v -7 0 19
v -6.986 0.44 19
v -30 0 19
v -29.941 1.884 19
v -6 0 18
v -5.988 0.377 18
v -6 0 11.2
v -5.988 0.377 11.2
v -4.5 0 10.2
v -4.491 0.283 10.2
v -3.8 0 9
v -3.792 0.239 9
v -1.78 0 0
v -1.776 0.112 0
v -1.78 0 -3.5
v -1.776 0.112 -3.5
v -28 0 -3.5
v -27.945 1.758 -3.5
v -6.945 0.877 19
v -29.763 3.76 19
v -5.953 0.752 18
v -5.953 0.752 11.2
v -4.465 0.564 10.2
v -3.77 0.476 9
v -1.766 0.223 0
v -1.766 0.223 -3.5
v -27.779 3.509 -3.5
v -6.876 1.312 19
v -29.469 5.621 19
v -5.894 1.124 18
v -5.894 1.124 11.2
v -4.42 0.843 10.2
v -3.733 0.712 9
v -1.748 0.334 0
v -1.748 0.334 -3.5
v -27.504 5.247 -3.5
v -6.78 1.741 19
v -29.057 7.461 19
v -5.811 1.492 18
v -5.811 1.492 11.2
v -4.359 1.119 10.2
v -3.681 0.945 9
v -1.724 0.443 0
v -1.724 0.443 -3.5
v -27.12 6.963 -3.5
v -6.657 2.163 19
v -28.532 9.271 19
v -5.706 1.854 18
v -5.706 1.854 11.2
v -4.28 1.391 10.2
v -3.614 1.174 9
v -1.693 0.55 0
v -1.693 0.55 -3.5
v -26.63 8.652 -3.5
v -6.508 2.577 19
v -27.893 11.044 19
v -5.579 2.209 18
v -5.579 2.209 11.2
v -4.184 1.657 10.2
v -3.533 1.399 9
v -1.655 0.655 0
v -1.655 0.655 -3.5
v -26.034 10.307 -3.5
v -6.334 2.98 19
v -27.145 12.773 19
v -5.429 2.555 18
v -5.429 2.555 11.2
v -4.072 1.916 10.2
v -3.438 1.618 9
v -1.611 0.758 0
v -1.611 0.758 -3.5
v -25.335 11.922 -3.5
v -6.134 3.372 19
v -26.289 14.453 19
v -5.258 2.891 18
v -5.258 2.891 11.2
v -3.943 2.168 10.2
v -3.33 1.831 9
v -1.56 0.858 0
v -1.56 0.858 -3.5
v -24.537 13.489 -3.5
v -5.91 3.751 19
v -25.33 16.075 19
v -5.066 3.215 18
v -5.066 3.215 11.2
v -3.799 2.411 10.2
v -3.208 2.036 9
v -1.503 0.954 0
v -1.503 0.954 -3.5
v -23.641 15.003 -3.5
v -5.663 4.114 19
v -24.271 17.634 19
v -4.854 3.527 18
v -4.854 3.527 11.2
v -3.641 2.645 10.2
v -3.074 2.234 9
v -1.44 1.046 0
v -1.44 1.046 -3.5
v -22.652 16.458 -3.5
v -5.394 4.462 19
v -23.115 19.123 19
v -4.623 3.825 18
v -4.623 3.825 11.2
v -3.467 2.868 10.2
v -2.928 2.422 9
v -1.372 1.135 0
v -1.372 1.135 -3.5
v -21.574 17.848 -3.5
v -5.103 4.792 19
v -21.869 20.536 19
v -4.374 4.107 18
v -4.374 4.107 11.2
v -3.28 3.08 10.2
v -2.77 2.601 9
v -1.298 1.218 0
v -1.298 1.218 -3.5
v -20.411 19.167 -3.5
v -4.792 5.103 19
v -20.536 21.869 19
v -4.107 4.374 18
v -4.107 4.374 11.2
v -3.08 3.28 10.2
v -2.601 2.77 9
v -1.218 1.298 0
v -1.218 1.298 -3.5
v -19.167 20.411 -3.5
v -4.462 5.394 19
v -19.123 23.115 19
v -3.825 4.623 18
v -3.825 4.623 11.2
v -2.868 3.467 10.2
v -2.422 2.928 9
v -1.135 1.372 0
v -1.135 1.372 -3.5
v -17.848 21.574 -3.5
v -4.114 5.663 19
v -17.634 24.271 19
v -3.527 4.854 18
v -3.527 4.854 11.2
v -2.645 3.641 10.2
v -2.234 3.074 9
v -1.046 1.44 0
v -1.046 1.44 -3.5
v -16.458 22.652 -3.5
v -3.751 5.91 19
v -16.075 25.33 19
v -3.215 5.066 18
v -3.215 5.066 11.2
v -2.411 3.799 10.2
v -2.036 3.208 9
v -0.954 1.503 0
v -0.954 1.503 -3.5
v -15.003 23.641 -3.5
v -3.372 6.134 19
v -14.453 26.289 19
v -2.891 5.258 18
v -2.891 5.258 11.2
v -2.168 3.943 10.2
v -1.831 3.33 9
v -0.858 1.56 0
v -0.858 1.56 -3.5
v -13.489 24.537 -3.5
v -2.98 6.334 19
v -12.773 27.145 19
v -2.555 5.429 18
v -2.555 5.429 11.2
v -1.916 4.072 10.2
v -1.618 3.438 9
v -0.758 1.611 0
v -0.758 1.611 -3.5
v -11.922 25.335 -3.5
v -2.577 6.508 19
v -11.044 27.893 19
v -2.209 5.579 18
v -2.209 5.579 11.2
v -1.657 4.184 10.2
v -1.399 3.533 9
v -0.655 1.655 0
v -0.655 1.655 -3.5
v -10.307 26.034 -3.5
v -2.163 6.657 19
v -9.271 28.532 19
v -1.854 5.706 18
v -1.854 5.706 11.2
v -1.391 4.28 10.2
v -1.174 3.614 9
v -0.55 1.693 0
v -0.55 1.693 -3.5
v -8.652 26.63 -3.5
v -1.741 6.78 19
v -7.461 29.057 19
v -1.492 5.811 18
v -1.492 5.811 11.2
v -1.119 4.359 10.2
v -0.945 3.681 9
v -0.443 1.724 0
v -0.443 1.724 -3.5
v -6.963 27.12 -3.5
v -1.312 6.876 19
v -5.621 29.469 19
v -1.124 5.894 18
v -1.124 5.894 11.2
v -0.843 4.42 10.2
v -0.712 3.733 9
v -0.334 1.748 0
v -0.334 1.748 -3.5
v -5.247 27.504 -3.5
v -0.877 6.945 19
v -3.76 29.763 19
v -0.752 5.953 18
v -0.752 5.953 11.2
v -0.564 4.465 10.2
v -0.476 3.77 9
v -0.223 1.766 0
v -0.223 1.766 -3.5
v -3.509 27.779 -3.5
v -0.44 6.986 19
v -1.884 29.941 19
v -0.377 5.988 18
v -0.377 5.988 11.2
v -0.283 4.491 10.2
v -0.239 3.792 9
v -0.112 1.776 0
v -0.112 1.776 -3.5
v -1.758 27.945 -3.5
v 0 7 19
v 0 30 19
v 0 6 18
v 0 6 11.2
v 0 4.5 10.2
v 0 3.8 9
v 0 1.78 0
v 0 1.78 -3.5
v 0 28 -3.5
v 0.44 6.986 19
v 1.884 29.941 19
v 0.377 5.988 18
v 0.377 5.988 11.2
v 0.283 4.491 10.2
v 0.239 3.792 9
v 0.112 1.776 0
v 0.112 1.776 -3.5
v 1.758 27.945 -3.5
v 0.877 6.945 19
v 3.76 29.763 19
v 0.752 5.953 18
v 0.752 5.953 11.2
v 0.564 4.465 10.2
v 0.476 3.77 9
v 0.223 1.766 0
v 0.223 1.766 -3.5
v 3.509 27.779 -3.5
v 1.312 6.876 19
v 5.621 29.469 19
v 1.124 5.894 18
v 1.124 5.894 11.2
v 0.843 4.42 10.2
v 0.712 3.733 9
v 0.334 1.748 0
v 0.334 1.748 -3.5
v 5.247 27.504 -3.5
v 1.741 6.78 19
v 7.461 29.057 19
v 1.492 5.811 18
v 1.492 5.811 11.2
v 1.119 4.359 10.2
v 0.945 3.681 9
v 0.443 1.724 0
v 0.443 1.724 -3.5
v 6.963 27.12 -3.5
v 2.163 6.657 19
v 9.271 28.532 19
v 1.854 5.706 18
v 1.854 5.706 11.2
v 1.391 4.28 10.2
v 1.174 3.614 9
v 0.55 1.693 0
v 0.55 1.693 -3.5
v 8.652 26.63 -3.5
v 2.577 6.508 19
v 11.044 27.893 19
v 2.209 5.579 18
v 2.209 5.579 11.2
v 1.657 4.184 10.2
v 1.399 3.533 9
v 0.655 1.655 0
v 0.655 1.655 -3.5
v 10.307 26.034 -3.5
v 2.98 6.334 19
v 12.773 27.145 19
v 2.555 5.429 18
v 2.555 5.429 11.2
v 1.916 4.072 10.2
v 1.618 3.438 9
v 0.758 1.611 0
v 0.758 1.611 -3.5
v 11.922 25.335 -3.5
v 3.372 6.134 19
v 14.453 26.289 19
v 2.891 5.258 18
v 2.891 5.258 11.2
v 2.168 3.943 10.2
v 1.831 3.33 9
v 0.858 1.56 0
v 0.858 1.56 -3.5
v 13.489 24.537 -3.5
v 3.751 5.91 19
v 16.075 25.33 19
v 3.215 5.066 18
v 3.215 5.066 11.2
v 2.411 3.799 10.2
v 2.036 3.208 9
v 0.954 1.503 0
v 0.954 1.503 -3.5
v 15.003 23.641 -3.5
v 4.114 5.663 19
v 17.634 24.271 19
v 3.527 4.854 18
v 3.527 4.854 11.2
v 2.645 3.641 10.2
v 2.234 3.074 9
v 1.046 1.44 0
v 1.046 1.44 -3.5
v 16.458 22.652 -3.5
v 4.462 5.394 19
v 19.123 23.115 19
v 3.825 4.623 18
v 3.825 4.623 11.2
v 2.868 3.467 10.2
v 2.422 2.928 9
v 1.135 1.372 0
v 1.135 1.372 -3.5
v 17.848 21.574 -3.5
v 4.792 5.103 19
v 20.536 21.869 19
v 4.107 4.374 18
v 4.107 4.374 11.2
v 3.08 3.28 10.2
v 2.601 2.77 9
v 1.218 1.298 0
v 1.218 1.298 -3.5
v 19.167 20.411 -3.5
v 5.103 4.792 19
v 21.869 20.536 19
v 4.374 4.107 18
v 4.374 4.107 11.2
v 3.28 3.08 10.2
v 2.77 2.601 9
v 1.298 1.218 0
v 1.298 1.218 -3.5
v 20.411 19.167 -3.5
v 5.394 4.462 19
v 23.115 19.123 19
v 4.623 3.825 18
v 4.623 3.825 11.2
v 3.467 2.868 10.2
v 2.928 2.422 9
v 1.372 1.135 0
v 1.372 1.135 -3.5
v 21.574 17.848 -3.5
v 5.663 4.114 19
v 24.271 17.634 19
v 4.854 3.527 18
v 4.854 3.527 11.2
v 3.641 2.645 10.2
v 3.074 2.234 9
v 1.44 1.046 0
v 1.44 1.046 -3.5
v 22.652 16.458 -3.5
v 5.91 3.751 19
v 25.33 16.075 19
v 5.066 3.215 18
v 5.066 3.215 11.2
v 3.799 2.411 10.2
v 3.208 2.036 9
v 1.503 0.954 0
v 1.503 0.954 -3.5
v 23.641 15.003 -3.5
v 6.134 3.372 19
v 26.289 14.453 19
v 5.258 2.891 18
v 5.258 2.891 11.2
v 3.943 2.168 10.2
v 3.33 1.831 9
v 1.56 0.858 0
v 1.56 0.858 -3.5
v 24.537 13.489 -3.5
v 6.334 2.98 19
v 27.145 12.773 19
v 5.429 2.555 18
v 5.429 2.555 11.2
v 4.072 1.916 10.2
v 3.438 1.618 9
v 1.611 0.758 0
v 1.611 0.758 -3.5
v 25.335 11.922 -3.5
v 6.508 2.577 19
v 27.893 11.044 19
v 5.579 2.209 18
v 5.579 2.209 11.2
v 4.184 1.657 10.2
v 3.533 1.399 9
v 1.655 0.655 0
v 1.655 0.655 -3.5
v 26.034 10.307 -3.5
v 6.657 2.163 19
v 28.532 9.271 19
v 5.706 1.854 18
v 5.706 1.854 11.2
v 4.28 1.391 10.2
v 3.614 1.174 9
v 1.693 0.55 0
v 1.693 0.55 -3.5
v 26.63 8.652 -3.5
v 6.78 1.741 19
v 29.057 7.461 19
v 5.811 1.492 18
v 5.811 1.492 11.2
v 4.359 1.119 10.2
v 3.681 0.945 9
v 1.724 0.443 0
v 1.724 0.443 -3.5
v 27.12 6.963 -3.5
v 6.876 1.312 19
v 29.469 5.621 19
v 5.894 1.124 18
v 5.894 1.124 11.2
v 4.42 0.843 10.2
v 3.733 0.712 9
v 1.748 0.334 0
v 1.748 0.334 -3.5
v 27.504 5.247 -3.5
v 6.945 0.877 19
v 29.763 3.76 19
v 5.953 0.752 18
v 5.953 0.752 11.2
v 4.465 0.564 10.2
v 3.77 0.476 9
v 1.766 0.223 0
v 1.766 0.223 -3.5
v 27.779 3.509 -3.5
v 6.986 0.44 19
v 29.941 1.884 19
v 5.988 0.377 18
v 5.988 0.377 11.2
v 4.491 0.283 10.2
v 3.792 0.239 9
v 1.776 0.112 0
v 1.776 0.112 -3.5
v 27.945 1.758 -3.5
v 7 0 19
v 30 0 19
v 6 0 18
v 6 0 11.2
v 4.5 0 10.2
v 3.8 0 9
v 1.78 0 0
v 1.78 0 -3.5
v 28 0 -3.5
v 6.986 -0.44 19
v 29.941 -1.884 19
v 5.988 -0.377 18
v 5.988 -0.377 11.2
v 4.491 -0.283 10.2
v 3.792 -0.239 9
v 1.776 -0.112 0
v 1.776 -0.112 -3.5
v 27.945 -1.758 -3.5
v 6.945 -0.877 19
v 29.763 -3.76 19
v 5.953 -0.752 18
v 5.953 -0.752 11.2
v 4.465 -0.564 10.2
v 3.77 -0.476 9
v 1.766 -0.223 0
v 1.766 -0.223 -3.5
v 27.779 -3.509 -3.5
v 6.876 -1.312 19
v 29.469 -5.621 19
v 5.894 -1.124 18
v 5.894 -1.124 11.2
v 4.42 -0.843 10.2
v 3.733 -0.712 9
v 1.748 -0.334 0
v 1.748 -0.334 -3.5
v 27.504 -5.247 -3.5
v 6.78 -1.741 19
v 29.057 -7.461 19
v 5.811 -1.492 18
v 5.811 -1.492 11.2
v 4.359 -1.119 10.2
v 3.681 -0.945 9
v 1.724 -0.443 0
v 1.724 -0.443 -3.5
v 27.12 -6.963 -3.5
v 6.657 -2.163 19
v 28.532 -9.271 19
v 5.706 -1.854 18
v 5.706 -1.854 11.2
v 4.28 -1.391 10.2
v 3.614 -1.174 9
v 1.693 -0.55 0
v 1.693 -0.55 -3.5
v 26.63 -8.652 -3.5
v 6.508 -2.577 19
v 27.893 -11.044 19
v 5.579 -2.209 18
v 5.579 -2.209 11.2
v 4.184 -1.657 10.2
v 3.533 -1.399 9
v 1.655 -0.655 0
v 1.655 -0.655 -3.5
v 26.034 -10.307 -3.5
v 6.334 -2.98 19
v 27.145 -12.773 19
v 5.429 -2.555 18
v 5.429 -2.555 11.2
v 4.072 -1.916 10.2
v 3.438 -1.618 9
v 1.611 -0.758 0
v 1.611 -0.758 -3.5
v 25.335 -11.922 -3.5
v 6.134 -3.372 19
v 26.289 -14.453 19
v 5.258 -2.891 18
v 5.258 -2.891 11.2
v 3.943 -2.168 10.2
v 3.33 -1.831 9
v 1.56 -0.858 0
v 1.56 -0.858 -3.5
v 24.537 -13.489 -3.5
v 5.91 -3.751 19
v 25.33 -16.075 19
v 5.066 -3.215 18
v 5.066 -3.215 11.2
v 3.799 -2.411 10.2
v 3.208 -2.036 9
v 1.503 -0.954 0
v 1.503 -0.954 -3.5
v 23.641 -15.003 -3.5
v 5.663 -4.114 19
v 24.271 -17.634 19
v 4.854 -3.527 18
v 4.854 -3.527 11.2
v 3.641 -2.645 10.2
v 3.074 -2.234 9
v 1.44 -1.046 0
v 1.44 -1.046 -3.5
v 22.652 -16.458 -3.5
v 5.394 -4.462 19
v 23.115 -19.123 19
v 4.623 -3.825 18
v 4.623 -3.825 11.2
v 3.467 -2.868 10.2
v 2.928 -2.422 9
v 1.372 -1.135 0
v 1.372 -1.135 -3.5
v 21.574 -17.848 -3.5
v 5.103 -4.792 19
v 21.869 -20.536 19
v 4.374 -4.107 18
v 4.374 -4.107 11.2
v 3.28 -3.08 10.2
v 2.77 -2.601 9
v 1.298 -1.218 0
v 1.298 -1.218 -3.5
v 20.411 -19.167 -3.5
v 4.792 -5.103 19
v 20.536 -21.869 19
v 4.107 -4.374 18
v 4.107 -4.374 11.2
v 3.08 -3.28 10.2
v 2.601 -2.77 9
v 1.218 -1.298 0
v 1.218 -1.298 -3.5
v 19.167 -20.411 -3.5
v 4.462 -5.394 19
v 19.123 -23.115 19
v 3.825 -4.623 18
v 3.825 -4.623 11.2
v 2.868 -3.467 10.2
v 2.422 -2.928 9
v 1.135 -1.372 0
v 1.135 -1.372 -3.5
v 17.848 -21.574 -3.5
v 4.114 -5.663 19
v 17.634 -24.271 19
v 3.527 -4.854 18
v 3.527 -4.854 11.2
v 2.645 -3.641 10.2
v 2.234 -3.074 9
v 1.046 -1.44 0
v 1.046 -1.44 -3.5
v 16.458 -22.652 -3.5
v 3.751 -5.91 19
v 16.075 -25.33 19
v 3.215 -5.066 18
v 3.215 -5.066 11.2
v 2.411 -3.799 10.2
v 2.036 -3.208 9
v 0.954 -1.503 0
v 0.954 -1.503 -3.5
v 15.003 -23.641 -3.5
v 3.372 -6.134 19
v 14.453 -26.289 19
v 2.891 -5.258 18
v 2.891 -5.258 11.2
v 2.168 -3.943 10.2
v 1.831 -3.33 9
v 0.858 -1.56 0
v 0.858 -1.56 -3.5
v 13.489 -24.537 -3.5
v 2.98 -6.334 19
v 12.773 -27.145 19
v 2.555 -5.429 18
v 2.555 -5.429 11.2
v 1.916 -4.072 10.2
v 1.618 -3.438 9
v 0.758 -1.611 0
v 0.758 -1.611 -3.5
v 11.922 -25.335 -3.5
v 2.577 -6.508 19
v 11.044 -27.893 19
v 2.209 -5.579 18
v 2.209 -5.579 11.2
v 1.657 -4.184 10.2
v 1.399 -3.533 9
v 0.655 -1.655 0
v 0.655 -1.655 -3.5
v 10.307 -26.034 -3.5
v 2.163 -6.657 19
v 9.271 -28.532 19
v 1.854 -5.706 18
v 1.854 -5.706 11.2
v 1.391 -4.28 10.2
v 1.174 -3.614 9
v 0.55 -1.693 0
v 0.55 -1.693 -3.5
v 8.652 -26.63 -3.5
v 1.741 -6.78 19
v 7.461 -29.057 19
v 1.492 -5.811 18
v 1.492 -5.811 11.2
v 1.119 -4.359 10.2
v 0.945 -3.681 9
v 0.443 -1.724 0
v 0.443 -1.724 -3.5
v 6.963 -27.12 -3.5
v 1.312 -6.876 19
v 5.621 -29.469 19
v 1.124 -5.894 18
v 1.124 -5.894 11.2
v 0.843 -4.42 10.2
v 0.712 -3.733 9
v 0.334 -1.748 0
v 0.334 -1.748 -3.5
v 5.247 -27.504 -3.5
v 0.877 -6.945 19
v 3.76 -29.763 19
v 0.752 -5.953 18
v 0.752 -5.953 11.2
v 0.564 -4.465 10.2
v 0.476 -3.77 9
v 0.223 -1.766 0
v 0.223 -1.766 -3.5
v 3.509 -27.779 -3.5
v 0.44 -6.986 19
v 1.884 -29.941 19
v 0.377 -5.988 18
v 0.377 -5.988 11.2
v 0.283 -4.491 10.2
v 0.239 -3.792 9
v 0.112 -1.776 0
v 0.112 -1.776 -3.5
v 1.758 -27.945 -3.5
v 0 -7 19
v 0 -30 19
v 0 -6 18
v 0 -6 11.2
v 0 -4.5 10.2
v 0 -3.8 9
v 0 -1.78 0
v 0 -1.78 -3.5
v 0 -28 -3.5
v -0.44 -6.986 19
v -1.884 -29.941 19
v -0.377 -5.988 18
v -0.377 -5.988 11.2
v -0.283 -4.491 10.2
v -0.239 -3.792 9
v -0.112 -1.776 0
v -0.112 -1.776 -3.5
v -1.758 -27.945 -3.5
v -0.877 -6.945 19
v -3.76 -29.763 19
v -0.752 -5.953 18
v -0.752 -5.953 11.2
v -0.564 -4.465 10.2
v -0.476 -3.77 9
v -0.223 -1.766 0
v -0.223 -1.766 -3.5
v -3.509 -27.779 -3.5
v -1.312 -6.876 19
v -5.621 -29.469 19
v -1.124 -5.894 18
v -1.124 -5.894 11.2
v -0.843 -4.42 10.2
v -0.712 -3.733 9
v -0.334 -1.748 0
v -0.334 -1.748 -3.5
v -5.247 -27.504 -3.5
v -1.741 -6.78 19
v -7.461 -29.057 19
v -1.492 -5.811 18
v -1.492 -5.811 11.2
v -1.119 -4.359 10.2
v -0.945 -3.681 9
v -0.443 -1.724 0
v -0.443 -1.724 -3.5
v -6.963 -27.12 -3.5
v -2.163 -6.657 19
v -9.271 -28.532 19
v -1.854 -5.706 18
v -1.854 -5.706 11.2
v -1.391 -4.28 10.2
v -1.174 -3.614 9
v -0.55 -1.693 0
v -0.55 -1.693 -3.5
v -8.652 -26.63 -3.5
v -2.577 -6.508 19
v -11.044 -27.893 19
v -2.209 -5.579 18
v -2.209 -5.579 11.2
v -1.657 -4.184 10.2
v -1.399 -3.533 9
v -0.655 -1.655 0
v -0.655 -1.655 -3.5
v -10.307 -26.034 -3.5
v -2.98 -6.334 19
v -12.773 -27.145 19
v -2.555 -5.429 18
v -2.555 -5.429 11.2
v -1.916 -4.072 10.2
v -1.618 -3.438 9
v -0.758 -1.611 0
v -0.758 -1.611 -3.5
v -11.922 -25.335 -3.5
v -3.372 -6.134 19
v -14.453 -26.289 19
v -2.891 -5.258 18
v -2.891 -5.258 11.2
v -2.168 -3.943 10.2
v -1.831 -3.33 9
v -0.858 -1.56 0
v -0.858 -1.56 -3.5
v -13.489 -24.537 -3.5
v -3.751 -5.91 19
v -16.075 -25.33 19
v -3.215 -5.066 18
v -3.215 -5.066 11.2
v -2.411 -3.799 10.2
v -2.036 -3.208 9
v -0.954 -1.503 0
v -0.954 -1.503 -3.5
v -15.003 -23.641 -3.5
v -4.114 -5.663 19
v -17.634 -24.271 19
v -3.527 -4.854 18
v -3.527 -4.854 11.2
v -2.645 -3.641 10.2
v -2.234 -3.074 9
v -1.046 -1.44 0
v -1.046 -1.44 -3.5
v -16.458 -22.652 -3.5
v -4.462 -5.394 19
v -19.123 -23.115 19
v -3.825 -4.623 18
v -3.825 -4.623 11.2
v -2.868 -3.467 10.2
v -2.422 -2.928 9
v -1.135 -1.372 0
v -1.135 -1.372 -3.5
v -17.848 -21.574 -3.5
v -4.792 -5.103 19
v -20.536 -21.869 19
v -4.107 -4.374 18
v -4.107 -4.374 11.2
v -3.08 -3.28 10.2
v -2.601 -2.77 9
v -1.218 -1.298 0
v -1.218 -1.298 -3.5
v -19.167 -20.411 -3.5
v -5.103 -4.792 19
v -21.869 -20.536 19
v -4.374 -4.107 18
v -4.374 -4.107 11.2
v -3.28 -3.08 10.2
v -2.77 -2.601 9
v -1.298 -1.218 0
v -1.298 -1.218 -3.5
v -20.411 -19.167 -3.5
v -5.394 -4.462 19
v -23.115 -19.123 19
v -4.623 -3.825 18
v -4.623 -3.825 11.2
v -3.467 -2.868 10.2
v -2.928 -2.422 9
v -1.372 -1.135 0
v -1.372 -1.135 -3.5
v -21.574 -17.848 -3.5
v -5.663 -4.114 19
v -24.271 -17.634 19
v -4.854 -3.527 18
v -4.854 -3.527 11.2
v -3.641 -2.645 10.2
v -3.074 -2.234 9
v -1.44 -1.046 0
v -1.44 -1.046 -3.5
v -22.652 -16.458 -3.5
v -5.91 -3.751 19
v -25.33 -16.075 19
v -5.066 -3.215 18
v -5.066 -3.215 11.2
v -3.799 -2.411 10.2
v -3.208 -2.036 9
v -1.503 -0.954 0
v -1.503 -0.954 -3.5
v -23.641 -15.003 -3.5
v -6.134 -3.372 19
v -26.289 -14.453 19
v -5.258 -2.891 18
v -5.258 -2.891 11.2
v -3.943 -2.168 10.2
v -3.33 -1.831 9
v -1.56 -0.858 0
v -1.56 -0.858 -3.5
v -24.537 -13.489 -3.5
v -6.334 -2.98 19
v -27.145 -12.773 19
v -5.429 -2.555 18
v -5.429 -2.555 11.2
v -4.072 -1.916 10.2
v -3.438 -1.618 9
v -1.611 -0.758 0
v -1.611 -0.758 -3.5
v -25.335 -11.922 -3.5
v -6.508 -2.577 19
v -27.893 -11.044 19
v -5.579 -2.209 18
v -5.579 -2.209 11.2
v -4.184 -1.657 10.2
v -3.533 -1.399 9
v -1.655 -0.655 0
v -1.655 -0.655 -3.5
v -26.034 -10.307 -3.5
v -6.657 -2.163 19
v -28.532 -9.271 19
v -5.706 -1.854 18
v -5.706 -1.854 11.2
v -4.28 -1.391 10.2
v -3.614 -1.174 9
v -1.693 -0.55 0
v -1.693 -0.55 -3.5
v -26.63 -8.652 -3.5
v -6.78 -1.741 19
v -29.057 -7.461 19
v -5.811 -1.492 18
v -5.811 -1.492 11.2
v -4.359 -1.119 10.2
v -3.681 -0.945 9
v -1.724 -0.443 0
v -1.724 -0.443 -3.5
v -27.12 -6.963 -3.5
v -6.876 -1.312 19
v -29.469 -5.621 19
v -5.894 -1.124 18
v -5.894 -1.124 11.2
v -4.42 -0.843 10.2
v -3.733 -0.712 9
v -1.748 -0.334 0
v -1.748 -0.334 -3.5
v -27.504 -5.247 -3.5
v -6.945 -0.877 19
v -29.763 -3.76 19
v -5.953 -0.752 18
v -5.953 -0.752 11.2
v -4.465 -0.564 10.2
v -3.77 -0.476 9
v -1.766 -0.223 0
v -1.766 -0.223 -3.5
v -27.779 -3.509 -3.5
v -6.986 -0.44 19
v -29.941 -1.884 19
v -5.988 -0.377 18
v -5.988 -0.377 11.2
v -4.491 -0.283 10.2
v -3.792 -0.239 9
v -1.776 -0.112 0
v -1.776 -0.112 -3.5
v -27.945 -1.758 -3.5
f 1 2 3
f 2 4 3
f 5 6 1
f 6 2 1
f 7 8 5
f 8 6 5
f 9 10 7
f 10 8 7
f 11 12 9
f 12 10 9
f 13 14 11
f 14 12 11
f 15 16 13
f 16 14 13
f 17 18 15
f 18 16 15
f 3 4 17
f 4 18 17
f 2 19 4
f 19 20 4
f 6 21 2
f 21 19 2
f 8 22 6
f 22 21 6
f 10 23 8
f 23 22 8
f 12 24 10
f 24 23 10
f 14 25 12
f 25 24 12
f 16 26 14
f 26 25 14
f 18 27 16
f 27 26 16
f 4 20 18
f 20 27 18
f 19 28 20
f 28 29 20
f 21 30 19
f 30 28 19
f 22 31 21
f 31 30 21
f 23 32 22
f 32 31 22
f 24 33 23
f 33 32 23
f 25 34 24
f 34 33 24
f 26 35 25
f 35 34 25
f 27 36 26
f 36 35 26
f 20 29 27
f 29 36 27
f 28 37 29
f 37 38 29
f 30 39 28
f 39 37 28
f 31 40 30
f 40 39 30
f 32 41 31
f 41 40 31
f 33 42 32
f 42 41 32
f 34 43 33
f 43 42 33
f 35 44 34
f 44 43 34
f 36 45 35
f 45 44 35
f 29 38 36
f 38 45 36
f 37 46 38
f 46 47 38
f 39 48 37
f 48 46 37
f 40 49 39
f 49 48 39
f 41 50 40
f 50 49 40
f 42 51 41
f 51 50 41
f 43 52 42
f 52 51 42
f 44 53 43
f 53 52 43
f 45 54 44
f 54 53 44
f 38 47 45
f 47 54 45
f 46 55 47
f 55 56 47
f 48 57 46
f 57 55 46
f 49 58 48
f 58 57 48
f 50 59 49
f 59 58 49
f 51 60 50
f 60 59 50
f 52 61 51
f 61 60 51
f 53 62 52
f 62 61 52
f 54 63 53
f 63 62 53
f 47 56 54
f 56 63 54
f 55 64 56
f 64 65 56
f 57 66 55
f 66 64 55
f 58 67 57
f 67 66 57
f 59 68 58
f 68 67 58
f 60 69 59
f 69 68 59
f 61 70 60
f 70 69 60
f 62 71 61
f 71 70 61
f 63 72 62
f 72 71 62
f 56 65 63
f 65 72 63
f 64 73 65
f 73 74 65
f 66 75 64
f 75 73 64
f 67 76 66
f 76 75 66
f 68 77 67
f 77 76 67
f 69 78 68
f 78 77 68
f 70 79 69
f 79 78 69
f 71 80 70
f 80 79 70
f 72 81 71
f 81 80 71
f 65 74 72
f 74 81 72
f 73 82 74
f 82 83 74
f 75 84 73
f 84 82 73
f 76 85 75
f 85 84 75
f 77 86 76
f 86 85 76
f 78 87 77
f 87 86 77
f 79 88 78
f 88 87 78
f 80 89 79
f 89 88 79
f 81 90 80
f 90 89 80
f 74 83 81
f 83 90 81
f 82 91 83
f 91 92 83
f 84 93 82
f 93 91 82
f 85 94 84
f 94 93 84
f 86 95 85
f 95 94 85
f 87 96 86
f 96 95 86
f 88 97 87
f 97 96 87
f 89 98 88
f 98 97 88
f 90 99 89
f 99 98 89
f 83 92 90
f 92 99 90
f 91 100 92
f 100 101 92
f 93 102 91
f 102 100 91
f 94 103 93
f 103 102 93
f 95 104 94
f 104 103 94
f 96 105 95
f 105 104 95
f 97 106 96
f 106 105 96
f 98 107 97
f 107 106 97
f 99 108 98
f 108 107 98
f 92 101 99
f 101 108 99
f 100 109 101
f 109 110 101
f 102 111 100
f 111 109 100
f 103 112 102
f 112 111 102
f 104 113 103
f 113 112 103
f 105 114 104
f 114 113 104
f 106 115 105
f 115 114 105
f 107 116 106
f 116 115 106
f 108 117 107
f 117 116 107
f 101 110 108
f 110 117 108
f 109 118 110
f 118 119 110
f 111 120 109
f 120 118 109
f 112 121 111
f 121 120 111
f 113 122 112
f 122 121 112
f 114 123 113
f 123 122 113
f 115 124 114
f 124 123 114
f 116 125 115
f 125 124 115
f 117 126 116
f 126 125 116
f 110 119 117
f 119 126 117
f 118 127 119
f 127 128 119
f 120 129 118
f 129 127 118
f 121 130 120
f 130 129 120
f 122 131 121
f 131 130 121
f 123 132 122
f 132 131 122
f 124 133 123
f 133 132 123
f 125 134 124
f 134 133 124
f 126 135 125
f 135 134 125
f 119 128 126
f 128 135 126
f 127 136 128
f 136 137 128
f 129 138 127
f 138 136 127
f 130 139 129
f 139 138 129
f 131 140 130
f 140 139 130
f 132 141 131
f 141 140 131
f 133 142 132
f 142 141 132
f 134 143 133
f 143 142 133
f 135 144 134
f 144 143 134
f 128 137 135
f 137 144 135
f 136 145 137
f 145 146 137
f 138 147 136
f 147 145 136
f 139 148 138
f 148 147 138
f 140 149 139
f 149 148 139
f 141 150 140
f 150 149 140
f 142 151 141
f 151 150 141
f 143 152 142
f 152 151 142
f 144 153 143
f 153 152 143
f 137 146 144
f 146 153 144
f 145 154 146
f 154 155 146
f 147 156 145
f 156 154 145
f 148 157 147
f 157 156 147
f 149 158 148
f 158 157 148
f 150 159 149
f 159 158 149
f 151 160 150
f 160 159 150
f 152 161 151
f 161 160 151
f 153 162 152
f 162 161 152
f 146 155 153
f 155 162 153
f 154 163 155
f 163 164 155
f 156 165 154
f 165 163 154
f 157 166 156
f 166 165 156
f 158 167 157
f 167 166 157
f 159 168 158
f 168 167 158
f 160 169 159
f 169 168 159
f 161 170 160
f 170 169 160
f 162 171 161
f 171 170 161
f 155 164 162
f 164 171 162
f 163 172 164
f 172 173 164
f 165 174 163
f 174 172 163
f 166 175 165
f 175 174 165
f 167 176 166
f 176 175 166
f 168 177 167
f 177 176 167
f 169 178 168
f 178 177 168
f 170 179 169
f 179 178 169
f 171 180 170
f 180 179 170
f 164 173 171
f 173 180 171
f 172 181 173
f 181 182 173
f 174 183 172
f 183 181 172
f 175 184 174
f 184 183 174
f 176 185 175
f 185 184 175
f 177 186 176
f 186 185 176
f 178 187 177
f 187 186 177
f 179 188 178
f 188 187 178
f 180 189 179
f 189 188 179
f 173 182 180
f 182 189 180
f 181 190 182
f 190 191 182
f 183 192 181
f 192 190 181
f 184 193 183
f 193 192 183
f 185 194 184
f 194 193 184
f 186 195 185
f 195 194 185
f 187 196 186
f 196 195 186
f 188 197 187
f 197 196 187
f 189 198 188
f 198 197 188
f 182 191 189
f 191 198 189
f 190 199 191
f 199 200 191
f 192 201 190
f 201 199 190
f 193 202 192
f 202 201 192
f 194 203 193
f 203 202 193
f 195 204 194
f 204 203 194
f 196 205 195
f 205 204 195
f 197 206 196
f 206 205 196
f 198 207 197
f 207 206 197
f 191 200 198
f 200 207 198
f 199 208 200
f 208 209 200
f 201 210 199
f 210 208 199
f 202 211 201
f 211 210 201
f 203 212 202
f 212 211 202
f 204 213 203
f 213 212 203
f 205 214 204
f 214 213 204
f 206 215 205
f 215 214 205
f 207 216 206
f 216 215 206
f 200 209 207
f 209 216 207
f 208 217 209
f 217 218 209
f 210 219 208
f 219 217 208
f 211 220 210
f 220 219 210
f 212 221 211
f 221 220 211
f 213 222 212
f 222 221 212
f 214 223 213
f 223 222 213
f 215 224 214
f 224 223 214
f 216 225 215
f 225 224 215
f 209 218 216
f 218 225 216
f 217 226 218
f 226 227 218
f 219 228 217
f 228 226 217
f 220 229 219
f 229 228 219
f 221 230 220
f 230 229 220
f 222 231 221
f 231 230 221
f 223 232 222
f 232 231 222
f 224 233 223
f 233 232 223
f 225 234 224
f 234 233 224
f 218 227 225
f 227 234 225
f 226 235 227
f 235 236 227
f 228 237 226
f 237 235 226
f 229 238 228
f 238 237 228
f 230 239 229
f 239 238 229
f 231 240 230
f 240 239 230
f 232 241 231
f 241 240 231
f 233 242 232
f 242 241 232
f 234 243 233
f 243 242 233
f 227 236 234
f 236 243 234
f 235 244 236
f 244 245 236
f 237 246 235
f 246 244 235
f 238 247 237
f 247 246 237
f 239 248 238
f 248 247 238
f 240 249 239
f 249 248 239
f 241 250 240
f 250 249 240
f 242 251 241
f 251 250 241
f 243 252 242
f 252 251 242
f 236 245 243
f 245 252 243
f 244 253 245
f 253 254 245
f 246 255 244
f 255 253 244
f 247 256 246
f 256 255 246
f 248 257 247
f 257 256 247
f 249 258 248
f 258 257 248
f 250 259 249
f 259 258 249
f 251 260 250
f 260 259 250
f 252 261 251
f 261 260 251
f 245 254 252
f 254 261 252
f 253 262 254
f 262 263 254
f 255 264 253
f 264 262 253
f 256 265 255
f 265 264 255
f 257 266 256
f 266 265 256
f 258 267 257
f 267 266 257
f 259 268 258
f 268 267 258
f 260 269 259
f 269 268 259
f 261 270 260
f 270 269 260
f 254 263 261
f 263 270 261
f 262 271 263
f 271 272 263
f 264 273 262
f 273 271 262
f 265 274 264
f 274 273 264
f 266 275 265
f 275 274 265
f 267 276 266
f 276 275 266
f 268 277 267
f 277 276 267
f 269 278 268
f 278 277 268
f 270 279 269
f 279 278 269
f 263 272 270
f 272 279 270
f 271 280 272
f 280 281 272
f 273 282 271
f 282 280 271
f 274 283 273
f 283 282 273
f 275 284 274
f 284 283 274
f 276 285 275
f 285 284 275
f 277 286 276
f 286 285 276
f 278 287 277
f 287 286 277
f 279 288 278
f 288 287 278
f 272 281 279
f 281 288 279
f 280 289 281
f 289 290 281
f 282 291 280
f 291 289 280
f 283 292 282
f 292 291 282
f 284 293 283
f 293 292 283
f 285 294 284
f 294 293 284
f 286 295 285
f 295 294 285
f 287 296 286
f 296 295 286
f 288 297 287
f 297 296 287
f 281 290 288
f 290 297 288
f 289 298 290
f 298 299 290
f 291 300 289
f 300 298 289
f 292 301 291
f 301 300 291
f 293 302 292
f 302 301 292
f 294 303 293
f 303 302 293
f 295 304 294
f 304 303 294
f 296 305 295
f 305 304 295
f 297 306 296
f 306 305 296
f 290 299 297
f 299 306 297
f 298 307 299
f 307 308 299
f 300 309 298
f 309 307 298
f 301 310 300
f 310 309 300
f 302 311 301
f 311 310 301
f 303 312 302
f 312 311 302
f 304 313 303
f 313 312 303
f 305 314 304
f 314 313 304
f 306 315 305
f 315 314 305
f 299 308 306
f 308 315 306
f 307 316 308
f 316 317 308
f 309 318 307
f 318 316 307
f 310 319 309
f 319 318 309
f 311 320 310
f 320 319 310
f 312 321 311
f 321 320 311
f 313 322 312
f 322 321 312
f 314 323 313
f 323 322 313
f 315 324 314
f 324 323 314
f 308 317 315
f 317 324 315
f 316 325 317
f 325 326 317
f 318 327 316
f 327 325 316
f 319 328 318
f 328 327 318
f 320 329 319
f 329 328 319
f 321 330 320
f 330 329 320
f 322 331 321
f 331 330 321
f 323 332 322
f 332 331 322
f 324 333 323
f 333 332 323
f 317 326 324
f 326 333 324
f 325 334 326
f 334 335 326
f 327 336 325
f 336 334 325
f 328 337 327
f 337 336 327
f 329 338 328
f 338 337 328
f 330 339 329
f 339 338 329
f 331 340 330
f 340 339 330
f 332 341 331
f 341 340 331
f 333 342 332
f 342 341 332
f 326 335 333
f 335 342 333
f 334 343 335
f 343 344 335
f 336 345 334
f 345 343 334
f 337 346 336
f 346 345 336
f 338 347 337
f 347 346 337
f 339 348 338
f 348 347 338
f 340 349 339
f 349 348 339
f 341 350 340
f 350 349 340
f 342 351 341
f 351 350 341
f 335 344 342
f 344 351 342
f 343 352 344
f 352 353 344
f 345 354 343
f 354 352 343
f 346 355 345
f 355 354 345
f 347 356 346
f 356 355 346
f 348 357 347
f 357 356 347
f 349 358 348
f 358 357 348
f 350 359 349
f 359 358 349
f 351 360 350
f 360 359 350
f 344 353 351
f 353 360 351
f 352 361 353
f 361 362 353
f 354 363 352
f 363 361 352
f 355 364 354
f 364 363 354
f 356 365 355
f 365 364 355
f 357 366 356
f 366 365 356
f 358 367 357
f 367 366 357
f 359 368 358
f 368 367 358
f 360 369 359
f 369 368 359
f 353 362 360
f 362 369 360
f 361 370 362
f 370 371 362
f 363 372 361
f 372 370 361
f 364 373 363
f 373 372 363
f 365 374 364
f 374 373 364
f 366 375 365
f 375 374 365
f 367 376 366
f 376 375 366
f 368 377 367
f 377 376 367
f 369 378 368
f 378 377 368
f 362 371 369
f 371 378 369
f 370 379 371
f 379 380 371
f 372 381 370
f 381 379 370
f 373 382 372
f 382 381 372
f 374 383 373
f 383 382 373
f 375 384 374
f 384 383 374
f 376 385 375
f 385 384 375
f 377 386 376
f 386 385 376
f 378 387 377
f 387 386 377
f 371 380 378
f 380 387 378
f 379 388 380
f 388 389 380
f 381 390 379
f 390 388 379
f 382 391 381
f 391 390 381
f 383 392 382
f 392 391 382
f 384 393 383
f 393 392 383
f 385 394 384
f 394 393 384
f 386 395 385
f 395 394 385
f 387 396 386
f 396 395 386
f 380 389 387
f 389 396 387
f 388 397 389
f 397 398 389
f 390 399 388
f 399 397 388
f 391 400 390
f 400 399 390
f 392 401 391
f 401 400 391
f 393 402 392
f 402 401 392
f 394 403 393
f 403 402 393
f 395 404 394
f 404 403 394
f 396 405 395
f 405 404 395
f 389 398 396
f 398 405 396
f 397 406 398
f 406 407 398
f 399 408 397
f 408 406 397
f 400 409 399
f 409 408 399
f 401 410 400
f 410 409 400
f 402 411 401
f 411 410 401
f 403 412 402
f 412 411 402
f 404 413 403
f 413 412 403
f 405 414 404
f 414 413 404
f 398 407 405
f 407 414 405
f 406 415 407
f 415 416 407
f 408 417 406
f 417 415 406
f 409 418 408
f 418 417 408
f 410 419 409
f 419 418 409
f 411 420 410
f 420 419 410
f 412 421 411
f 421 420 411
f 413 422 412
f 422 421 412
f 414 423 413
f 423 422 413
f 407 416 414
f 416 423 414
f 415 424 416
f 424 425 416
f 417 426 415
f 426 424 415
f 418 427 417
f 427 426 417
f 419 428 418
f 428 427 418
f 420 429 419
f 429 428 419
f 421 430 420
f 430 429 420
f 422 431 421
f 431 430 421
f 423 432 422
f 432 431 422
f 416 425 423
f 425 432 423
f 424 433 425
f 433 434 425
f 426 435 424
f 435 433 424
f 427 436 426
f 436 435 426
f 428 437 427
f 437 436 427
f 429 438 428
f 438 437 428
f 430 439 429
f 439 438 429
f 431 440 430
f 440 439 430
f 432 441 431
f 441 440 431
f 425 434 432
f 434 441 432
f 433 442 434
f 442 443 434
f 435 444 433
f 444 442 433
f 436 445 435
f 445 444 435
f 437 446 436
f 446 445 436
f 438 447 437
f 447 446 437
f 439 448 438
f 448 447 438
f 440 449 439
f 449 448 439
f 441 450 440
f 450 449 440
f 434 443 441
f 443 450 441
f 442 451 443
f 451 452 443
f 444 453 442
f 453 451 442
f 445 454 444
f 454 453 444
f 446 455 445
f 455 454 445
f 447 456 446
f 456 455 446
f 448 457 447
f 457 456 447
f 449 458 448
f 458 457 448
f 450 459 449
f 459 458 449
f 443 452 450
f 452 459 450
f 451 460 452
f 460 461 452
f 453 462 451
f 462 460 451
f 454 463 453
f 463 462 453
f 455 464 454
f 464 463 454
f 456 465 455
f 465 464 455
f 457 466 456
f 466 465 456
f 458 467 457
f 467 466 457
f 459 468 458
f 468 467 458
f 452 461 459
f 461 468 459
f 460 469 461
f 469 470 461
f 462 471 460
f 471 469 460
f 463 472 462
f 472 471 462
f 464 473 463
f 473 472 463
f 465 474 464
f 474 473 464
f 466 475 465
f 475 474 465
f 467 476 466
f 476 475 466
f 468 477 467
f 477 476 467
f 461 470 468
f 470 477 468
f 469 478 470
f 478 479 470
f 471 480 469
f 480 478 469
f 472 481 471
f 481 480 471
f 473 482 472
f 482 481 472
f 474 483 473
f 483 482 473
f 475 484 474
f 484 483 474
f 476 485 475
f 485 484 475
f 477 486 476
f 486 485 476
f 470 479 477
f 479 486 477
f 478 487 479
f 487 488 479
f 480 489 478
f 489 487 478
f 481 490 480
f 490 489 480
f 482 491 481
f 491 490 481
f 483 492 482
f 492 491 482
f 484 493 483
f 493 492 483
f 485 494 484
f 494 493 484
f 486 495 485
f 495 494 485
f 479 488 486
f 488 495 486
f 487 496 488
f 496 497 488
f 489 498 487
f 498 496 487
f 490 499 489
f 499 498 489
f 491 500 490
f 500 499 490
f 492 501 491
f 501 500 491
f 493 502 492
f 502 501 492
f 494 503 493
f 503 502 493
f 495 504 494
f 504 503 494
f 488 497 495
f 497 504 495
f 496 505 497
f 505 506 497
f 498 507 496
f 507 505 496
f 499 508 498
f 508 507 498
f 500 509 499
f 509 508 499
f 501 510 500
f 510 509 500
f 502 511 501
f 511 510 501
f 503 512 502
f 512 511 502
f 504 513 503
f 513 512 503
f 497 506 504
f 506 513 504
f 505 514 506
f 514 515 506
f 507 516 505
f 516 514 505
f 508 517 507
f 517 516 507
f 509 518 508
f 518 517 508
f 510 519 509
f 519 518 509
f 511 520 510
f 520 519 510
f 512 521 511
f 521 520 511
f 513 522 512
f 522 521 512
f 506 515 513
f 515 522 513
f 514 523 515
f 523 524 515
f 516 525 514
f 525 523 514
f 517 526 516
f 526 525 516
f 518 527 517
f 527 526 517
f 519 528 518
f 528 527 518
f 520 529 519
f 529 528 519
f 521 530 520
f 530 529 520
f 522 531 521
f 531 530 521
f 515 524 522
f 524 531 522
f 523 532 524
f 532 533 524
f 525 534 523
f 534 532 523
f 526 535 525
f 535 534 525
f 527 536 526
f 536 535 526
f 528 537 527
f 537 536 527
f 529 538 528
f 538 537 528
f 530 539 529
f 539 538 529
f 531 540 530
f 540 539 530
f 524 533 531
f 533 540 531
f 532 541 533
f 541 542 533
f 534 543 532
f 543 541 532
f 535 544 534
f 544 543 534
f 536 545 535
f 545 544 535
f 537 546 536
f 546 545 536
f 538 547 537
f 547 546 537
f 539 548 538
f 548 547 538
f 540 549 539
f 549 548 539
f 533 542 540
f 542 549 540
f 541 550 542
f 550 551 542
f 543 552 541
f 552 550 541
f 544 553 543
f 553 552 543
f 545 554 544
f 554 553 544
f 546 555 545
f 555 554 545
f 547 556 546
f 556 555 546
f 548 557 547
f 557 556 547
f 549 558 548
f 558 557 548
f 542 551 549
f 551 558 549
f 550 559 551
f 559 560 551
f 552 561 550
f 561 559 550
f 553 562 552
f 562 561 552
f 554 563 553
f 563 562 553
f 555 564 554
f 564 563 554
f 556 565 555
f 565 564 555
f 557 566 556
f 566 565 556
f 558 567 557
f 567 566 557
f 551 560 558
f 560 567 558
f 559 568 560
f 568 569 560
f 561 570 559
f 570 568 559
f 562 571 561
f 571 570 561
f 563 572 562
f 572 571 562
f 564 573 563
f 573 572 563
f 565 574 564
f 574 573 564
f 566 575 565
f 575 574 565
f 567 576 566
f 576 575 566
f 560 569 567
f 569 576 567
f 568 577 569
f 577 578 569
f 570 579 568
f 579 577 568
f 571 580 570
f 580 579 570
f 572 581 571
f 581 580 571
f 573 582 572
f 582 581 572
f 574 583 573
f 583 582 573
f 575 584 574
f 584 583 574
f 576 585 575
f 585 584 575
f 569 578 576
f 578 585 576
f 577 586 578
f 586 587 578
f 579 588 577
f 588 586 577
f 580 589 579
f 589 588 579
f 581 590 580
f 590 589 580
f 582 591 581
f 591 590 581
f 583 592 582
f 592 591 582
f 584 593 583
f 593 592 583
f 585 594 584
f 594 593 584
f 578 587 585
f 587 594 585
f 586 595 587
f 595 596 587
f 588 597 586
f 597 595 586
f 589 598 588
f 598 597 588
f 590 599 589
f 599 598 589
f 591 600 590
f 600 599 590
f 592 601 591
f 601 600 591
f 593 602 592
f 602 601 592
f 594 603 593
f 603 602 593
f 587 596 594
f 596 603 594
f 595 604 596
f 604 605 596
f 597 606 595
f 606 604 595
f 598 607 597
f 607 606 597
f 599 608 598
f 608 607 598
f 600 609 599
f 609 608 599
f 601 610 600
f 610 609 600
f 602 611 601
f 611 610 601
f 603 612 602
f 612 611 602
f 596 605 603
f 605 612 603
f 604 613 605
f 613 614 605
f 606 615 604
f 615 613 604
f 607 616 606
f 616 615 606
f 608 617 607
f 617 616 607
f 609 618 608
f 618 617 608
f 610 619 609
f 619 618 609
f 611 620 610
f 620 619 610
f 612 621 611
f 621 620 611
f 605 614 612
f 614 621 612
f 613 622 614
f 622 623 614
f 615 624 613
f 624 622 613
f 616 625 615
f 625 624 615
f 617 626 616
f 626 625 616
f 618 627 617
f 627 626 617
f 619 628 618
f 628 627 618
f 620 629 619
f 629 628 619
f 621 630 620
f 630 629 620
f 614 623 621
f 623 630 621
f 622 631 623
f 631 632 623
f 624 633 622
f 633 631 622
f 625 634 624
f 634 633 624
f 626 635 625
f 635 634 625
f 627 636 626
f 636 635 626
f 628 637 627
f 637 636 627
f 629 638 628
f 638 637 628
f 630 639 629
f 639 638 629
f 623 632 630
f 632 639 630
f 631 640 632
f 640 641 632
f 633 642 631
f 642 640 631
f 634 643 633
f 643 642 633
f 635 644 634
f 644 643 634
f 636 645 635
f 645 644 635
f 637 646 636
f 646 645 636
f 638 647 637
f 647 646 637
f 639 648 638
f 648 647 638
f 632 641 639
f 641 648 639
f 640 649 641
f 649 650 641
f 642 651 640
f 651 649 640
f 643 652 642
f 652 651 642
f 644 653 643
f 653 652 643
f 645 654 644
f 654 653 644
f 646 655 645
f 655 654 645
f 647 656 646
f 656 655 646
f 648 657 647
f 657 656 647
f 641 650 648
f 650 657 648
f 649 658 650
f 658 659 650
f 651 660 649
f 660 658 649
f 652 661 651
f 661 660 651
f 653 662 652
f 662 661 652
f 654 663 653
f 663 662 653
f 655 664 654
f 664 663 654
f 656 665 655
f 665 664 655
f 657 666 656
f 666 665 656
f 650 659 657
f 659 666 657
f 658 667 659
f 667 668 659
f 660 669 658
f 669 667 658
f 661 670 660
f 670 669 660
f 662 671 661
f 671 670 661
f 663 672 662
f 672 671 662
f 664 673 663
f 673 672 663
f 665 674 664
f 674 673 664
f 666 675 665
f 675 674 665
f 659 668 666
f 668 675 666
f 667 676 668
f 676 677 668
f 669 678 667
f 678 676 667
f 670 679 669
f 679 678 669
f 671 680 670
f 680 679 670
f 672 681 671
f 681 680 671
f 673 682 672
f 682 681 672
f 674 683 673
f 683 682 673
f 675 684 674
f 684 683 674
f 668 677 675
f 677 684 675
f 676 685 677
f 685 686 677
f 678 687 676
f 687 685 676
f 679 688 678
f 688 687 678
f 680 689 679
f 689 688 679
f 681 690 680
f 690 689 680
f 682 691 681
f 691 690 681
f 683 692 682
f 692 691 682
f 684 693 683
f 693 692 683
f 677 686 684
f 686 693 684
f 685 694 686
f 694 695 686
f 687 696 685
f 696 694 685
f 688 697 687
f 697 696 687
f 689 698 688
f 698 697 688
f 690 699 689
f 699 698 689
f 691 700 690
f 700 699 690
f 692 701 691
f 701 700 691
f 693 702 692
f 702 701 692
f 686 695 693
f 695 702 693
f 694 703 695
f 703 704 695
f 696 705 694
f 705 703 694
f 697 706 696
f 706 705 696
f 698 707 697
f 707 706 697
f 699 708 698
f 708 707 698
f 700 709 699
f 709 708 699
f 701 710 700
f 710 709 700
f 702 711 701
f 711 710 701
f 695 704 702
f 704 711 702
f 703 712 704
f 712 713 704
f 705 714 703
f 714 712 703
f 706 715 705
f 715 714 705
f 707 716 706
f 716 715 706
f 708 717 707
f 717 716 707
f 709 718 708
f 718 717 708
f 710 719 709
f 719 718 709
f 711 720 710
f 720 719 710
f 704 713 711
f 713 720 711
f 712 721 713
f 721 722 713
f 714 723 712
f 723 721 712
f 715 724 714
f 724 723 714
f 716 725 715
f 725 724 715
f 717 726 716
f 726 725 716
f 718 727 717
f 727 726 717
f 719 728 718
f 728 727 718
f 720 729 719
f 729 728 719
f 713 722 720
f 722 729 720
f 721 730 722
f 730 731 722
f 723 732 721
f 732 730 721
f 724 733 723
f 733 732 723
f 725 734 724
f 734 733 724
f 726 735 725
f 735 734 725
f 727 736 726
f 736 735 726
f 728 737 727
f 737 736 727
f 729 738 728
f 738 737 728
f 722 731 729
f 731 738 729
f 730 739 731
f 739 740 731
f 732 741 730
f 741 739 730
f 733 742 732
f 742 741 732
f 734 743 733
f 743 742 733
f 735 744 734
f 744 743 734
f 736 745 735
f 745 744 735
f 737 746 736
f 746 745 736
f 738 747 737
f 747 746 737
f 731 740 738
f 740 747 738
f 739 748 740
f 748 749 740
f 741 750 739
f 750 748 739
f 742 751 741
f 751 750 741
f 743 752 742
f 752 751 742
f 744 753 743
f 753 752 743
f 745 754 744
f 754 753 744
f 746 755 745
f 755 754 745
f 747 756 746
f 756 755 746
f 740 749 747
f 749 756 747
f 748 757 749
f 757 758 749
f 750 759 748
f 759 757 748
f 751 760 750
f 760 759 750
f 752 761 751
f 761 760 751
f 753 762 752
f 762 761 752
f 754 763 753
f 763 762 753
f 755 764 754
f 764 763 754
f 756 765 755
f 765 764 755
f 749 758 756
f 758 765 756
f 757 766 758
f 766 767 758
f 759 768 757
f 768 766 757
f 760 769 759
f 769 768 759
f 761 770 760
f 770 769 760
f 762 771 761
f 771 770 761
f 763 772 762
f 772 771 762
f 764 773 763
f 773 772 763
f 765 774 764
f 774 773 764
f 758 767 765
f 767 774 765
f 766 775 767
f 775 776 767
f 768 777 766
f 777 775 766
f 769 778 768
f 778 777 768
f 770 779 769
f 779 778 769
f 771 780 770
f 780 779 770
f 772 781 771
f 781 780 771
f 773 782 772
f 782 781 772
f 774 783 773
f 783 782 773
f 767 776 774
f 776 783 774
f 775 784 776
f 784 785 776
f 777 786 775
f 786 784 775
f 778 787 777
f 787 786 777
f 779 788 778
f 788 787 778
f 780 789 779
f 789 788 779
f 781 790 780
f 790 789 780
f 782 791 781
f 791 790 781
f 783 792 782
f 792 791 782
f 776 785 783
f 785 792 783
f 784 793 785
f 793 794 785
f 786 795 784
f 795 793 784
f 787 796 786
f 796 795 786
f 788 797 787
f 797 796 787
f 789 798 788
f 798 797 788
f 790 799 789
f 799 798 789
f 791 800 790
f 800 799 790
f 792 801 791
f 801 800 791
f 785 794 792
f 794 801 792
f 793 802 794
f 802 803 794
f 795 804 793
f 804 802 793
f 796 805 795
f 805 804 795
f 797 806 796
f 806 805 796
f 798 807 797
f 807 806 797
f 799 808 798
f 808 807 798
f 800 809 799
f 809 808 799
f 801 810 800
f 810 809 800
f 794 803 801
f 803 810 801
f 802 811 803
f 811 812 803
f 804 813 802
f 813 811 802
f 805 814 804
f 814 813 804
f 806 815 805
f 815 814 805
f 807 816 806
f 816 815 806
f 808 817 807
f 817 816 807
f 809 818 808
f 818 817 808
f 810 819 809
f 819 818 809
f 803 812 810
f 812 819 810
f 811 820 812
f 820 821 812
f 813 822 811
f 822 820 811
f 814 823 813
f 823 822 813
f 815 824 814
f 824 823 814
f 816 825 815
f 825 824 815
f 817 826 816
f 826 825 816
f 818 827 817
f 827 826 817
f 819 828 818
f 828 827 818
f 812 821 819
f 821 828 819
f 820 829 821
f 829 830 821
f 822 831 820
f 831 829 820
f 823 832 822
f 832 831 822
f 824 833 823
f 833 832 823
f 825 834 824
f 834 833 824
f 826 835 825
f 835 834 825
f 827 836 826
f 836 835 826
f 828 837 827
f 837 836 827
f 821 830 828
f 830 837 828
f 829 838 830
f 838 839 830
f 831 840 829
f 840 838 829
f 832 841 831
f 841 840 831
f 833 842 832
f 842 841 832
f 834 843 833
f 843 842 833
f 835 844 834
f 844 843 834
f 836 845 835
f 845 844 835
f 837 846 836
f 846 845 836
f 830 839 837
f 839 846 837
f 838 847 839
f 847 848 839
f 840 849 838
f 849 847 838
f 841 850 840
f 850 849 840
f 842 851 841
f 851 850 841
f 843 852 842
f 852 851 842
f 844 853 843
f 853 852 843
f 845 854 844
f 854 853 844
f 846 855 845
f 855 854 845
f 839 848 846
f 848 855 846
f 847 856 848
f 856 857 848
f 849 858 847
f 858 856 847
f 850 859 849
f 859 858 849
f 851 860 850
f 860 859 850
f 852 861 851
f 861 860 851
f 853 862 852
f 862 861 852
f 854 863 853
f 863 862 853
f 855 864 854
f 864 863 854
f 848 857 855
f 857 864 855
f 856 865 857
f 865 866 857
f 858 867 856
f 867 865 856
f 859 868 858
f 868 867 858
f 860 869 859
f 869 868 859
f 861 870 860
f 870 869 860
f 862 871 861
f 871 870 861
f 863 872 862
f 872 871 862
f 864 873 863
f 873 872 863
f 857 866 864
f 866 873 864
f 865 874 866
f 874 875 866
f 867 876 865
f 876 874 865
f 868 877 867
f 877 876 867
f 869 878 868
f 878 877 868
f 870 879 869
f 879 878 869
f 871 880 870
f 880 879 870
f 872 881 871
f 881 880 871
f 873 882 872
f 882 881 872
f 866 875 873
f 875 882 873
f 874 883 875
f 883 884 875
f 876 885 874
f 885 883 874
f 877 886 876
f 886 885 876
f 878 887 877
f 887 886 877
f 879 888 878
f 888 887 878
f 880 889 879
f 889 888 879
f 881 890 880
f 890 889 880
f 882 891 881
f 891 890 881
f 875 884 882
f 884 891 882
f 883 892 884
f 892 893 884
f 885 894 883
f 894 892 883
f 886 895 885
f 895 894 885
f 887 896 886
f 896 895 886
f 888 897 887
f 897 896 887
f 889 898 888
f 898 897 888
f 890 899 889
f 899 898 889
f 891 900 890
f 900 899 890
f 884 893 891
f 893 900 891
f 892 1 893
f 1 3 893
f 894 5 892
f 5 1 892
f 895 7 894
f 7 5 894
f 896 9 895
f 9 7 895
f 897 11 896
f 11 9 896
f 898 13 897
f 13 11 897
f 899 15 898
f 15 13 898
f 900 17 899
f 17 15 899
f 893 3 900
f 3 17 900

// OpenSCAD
// A desktop stand for MUJI mechanical pencil


ro = 28; // outer radius

rotate_extrude($fn=100) {
    difference() {
        polygon([
            [1.78, 0],
            [3.8, 9],
            [4.5, 10.2],
            [6, 11.2],
            [6, 18],
            
            [7, 19],
            [ro+2, 19],
            
            
            //[ro, 13],
            //[ro, 0],
            [ro, -3.5],
            [1.78, -3.5],  
        ]);
        //translate([ro, 0]) scale([20,20]) translate([0,1]) circle(r=1);
    }
}
